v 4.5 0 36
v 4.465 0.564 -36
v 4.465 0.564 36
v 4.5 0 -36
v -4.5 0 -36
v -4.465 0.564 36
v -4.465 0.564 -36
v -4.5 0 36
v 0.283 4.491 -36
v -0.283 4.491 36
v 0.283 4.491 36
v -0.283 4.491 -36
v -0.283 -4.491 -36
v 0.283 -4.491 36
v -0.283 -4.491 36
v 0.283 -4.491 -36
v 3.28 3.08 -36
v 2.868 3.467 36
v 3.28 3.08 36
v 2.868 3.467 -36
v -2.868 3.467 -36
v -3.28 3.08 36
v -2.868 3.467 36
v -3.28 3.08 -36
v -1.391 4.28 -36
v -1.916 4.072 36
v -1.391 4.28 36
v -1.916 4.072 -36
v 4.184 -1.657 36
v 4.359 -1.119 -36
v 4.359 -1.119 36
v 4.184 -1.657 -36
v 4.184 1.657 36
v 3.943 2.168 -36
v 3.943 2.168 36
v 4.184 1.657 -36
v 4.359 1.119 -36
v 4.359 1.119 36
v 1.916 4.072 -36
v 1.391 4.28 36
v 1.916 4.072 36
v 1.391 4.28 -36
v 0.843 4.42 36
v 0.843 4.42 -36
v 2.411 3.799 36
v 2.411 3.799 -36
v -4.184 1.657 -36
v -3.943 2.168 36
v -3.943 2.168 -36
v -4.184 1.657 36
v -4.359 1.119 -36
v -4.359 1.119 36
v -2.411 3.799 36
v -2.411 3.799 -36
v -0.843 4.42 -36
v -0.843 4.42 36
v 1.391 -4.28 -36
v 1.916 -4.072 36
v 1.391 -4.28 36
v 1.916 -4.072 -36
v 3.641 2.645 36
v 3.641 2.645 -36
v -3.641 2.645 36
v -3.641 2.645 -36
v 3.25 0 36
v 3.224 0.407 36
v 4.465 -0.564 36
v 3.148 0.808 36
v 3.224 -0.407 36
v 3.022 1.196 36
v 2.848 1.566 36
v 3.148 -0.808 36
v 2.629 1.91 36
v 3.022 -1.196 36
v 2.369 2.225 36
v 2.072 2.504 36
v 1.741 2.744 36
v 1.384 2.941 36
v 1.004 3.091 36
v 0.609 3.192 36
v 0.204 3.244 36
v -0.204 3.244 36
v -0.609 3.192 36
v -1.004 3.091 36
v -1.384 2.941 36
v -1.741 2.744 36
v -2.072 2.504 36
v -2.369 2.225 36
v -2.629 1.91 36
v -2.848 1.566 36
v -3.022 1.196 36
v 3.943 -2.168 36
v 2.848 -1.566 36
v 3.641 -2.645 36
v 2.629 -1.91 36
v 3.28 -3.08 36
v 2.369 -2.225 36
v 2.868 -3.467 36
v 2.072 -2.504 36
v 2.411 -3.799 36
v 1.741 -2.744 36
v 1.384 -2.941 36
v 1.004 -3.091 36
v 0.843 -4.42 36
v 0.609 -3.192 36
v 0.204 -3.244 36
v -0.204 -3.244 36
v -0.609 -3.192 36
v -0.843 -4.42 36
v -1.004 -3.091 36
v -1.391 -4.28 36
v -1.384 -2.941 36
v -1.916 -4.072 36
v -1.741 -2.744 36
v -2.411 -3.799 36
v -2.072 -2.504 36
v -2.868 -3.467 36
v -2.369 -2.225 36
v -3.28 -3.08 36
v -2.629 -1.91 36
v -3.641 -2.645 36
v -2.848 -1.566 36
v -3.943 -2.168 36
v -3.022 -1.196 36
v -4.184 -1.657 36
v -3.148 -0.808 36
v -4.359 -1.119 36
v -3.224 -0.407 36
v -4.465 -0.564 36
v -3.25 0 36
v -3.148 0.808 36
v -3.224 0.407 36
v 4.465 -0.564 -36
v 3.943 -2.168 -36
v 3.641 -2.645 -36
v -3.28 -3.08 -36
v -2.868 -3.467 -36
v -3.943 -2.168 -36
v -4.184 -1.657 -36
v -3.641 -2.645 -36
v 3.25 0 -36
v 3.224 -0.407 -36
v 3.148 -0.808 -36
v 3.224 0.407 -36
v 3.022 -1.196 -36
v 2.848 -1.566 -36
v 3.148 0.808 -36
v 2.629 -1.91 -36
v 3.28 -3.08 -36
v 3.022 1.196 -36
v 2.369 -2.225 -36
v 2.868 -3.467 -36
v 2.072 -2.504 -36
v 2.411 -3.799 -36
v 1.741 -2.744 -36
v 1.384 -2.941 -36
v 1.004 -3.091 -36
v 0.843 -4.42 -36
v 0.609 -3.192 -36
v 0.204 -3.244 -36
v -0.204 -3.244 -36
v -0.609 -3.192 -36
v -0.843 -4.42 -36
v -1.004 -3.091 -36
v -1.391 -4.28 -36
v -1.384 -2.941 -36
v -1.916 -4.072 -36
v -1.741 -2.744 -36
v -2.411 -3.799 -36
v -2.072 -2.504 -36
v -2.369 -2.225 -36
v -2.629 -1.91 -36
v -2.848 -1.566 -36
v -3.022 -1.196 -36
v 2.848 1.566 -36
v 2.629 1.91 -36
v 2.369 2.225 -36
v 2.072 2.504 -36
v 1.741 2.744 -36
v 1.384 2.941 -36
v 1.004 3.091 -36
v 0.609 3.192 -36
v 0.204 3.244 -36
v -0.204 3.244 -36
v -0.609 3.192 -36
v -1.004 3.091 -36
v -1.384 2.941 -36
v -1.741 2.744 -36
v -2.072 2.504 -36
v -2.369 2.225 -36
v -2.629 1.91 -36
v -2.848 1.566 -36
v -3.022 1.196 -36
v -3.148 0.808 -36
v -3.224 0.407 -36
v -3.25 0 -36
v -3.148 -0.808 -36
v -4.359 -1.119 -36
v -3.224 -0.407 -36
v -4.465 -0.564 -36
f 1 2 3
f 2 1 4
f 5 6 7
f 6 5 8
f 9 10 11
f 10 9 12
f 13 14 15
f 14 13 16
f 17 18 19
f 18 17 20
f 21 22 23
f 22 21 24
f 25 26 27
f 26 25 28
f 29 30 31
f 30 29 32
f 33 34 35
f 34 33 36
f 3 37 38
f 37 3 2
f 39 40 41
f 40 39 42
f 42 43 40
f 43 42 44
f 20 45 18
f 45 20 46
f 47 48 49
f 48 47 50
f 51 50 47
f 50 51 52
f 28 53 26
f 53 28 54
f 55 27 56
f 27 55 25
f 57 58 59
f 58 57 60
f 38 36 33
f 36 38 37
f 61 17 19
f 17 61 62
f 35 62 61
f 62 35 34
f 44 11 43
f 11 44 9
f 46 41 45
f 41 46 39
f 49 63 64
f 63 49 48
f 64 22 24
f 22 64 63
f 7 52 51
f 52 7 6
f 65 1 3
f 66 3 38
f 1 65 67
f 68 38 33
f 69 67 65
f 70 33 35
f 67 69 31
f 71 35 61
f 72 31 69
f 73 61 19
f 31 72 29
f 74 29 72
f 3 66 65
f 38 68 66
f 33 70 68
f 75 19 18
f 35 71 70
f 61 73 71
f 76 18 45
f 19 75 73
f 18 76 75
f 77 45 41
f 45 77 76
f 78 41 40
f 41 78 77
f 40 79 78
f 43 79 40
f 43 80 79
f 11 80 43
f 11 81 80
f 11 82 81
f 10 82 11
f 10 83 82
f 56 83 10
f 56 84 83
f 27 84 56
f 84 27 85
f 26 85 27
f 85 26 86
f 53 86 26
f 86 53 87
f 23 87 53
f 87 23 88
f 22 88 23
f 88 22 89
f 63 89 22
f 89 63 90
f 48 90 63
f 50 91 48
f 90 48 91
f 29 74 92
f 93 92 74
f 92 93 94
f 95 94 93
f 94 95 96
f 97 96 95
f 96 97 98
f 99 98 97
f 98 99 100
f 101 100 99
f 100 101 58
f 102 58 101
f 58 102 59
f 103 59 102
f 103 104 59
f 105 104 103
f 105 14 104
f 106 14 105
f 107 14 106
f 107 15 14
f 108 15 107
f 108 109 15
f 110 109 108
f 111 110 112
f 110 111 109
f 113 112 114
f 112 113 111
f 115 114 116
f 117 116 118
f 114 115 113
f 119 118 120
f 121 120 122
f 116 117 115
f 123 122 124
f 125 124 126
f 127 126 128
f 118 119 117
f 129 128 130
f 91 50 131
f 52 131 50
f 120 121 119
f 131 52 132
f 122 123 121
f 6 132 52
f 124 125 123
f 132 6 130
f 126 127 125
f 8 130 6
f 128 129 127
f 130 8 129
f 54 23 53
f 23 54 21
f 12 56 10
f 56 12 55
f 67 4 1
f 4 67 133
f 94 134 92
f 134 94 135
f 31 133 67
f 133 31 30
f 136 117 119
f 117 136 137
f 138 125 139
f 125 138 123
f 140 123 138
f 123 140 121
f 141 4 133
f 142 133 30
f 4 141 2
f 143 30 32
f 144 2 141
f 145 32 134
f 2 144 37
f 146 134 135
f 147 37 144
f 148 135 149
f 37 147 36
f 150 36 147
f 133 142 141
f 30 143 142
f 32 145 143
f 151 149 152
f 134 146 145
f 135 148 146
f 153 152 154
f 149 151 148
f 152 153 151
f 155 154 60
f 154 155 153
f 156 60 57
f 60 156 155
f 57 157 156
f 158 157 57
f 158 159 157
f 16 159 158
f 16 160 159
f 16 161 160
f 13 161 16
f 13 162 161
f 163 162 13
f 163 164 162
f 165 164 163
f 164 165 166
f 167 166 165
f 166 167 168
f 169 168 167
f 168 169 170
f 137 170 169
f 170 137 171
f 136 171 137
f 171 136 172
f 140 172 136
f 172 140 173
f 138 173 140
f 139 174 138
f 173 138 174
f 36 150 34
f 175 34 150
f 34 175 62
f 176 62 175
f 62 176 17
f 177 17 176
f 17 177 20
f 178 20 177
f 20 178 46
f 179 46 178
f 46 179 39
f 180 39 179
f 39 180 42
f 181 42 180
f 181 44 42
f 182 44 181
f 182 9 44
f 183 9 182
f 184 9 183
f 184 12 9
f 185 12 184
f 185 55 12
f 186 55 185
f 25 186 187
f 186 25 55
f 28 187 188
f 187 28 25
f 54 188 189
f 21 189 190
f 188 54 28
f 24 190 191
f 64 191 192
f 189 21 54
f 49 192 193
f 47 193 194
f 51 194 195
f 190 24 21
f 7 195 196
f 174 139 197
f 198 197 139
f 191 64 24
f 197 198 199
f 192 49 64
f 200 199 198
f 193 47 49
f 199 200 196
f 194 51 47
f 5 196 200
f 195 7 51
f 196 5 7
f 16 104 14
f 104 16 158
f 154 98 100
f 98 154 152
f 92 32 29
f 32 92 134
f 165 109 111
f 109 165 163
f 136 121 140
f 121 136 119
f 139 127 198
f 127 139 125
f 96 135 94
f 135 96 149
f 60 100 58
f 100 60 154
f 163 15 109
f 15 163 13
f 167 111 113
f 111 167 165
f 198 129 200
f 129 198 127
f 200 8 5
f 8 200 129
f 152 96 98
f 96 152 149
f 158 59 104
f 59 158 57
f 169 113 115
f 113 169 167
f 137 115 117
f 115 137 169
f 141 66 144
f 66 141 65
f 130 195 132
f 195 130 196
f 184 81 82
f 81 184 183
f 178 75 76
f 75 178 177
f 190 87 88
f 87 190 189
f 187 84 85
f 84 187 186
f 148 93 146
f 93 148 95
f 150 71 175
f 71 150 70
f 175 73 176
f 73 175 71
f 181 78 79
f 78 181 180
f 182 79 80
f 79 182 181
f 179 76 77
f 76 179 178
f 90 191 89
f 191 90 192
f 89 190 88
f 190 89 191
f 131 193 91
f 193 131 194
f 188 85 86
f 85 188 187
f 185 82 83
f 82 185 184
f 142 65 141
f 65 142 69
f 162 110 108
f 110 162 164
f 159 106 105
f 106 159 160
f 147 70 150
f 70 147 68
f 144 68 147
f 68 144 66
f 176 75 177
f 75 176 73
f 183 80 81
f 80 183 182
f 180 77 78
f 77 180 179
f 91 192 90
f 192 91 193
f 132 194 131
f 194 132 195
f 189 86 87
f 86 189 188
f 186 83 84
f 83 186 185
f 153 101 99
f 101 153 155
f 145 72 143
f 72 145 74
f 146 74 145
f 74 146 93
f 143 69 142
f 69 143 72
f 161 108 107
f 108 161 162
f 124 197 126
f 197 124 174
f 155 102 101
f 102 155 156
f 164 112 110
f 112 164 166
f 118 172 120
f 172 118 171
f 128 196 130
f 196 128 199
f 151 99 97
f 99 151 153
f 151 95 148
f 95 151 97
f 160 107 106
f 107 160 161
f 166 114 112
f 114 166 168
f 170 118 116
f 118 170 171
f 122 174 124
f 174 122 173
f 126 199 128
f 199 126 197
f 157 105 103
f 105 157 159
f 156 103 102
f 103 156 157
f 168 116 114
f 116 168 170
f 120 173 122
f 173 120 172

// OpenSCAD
$fn = 50;


difference() {
	union() {
		translate(v = [0, 0, -36.0000000000]) {
			cylinder(h = 72, r = 4.5000000000);
		}
	}
	union() {
		translate(v = [0, 0, -100.0000000000]) {
			cylinder(h = 200, r = 3.2500000000);
		}
	}
}
